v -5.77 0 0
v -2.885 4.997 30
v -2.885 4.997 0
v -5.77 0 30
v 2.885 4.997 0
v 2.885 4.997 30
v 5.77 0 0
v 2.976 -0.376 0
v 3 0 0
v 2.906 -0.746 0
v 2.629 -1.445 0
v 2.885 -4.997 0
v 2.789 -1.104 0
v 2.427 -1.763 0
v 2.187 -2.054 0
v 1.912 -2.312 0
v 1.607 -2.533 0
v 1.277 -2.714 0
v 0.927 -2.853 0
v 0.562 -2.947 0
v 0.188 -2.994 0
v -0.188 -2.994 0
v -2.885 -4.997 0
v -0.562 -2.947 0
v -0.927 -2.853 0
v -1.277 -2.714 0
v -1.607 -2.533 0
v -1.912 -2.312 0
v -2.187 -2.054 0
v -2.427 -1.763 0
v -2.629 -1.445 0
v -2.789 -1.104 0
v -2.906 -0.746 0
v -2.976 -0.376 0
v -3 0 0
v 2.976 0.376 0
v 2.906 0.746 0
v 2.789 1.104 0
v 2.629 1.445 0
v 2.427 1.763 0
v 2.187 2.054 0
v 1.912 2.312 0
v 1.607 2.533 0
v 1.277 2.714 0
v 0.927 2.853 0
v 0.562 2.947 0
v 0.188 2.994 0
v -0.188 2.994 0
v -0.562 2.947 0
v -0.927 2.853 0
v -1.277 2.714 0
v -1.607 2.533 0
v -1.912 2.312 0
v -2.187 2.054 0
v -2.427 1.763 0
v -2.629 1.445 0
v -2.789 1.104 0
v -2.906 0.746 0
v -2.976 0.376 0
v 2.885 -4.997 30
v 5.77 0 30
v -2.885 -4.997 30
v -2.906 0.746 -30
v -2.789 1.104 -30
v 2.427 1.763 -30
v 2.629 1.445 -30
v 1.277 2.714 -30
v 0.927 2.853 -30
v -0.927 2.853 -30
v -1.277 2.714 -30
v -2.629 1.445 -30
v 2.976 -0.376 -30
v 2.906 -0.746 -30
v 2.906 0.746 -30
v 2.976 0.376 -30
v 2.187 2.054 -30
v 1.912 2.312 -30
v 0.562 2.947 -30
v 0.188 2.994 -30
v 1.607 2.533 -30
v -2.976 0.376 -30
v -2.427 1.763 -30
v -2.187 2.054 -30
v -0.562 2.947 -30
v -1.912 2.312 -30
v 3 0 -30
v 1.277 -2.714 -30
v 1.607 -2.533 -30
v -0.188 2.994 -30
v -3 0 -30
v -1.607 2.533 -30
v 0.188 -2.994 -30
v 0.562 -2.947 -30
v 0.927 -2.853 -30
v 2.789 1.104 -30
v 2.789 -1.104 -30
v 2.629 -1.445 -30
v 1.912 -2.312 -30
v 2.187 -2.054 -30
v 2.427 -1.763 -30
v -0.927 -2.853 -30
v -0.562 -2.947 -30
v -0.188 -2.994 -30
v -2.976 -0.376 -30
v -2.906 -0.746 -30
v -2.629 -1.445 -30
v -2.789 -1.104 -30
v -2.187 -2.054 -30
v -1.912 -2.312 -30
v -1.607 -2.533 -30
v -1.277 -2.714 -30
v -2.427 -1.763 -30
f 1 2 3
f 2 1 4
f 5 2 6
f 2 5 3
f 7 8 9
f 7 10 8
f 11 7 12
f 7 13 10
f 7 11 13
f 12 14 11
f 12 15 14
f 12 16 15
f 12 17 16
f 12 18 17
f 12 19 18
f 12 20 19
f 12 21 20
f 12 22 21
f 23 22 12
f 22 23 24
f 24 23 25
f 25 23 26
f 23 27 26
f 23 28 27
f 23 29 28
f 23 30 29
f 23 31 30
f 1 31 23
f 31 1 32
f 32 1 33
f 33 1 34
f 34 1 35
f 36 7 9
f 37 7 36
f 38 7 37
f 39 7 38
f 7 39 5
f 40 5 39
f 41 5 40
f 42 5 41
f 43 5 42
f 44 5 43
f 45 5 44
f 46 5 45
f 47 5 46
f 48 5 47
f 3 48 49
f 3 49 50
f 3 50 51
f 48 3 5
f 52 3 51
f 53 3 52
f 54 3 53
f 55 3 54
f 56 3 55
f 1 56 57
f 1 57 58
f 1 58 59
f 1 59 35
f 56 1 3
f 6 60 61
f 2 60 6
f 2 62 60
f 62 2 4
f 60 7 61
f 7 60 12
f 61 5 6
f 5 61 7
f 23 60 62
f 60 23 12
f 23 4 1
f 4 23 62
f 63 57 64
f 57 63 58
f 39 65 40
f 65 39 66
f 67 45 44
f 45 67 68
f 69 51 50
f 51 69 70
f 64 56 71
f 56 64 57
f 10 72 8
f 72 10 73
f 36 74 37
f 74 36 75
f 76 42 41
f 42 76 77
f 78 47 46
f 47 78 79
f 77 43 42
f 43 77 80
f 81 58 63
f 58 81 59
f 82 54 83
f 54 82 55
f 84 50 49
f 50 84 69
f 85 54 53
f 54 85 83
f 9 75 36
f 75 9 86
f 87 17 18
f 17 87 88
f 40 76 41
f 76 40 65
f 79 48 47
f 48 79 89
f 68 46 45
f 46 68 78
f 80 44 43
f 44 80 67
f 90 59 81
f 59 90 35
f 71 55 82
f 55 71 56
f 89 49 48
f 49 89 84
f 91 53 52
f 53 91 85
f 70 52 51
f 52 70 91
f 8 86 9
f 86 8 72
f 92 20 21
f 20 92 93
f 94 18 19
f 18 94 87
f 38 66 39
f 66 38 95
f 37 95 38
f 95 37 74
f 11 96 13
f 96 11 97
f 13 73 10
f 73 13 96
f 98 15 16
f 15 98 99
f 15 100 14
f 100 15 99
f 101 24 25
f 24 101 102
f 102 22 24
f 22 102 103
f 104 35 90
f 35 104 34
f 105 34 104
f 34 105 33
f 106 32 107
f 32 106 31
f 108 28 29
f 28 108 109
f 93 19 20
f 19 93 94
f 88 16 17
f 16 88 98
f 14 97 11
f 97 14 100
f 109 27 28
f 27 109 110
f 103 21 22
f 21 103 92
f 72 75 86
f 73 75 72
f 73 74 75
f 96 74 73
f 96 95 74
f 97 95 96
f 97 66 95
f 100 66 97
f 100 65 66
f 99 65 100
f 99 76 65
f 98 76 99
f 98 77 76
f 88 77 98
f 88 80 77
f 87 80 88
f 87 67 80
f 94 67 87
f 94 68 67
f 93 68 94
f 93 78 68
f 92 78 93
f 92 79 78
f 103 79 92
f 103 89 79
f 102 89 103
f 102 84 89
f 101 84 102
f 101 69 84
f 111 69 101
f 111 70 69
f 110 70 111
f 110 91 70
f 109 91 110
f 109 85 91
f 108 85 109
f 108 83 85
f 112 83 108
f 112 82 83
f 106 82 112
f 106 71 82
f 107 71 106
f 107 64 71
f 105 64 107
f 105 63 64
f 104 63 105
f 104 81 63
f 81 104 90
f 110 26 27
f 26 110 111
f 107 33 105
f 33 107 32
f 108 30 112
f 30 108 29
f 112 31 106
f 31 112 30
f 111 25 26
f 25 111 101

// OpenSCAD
$fn = 50;


difference() {
	union() {
		translate(v = [0, 0, 0]) {
			rotate(a = [0, 0, 0]) {
				translate(v = [0, 0, 0]) {
					rotate(a = [0, 0, 0]) {
						linear_extrude(height = 30) {
							polygon(points = [[5.7700000000, 0.0000000000], [2.8850000000, 4.9969665798], [-2.8850000000, 4.9969665798], [-5.7700000000, 0.0000000000], [-2.8850000000, -4.9969665798], [2.8850000000, -4.9969665798]]);
						}
					}
				}
			}
		}
		translate(v = [0, 0, -30]) {
			rotate(a = [0, 0, 0]) {
				cylinder(h = 30, r = 3.0000000000);
			}
		}
	}
	union();
}
